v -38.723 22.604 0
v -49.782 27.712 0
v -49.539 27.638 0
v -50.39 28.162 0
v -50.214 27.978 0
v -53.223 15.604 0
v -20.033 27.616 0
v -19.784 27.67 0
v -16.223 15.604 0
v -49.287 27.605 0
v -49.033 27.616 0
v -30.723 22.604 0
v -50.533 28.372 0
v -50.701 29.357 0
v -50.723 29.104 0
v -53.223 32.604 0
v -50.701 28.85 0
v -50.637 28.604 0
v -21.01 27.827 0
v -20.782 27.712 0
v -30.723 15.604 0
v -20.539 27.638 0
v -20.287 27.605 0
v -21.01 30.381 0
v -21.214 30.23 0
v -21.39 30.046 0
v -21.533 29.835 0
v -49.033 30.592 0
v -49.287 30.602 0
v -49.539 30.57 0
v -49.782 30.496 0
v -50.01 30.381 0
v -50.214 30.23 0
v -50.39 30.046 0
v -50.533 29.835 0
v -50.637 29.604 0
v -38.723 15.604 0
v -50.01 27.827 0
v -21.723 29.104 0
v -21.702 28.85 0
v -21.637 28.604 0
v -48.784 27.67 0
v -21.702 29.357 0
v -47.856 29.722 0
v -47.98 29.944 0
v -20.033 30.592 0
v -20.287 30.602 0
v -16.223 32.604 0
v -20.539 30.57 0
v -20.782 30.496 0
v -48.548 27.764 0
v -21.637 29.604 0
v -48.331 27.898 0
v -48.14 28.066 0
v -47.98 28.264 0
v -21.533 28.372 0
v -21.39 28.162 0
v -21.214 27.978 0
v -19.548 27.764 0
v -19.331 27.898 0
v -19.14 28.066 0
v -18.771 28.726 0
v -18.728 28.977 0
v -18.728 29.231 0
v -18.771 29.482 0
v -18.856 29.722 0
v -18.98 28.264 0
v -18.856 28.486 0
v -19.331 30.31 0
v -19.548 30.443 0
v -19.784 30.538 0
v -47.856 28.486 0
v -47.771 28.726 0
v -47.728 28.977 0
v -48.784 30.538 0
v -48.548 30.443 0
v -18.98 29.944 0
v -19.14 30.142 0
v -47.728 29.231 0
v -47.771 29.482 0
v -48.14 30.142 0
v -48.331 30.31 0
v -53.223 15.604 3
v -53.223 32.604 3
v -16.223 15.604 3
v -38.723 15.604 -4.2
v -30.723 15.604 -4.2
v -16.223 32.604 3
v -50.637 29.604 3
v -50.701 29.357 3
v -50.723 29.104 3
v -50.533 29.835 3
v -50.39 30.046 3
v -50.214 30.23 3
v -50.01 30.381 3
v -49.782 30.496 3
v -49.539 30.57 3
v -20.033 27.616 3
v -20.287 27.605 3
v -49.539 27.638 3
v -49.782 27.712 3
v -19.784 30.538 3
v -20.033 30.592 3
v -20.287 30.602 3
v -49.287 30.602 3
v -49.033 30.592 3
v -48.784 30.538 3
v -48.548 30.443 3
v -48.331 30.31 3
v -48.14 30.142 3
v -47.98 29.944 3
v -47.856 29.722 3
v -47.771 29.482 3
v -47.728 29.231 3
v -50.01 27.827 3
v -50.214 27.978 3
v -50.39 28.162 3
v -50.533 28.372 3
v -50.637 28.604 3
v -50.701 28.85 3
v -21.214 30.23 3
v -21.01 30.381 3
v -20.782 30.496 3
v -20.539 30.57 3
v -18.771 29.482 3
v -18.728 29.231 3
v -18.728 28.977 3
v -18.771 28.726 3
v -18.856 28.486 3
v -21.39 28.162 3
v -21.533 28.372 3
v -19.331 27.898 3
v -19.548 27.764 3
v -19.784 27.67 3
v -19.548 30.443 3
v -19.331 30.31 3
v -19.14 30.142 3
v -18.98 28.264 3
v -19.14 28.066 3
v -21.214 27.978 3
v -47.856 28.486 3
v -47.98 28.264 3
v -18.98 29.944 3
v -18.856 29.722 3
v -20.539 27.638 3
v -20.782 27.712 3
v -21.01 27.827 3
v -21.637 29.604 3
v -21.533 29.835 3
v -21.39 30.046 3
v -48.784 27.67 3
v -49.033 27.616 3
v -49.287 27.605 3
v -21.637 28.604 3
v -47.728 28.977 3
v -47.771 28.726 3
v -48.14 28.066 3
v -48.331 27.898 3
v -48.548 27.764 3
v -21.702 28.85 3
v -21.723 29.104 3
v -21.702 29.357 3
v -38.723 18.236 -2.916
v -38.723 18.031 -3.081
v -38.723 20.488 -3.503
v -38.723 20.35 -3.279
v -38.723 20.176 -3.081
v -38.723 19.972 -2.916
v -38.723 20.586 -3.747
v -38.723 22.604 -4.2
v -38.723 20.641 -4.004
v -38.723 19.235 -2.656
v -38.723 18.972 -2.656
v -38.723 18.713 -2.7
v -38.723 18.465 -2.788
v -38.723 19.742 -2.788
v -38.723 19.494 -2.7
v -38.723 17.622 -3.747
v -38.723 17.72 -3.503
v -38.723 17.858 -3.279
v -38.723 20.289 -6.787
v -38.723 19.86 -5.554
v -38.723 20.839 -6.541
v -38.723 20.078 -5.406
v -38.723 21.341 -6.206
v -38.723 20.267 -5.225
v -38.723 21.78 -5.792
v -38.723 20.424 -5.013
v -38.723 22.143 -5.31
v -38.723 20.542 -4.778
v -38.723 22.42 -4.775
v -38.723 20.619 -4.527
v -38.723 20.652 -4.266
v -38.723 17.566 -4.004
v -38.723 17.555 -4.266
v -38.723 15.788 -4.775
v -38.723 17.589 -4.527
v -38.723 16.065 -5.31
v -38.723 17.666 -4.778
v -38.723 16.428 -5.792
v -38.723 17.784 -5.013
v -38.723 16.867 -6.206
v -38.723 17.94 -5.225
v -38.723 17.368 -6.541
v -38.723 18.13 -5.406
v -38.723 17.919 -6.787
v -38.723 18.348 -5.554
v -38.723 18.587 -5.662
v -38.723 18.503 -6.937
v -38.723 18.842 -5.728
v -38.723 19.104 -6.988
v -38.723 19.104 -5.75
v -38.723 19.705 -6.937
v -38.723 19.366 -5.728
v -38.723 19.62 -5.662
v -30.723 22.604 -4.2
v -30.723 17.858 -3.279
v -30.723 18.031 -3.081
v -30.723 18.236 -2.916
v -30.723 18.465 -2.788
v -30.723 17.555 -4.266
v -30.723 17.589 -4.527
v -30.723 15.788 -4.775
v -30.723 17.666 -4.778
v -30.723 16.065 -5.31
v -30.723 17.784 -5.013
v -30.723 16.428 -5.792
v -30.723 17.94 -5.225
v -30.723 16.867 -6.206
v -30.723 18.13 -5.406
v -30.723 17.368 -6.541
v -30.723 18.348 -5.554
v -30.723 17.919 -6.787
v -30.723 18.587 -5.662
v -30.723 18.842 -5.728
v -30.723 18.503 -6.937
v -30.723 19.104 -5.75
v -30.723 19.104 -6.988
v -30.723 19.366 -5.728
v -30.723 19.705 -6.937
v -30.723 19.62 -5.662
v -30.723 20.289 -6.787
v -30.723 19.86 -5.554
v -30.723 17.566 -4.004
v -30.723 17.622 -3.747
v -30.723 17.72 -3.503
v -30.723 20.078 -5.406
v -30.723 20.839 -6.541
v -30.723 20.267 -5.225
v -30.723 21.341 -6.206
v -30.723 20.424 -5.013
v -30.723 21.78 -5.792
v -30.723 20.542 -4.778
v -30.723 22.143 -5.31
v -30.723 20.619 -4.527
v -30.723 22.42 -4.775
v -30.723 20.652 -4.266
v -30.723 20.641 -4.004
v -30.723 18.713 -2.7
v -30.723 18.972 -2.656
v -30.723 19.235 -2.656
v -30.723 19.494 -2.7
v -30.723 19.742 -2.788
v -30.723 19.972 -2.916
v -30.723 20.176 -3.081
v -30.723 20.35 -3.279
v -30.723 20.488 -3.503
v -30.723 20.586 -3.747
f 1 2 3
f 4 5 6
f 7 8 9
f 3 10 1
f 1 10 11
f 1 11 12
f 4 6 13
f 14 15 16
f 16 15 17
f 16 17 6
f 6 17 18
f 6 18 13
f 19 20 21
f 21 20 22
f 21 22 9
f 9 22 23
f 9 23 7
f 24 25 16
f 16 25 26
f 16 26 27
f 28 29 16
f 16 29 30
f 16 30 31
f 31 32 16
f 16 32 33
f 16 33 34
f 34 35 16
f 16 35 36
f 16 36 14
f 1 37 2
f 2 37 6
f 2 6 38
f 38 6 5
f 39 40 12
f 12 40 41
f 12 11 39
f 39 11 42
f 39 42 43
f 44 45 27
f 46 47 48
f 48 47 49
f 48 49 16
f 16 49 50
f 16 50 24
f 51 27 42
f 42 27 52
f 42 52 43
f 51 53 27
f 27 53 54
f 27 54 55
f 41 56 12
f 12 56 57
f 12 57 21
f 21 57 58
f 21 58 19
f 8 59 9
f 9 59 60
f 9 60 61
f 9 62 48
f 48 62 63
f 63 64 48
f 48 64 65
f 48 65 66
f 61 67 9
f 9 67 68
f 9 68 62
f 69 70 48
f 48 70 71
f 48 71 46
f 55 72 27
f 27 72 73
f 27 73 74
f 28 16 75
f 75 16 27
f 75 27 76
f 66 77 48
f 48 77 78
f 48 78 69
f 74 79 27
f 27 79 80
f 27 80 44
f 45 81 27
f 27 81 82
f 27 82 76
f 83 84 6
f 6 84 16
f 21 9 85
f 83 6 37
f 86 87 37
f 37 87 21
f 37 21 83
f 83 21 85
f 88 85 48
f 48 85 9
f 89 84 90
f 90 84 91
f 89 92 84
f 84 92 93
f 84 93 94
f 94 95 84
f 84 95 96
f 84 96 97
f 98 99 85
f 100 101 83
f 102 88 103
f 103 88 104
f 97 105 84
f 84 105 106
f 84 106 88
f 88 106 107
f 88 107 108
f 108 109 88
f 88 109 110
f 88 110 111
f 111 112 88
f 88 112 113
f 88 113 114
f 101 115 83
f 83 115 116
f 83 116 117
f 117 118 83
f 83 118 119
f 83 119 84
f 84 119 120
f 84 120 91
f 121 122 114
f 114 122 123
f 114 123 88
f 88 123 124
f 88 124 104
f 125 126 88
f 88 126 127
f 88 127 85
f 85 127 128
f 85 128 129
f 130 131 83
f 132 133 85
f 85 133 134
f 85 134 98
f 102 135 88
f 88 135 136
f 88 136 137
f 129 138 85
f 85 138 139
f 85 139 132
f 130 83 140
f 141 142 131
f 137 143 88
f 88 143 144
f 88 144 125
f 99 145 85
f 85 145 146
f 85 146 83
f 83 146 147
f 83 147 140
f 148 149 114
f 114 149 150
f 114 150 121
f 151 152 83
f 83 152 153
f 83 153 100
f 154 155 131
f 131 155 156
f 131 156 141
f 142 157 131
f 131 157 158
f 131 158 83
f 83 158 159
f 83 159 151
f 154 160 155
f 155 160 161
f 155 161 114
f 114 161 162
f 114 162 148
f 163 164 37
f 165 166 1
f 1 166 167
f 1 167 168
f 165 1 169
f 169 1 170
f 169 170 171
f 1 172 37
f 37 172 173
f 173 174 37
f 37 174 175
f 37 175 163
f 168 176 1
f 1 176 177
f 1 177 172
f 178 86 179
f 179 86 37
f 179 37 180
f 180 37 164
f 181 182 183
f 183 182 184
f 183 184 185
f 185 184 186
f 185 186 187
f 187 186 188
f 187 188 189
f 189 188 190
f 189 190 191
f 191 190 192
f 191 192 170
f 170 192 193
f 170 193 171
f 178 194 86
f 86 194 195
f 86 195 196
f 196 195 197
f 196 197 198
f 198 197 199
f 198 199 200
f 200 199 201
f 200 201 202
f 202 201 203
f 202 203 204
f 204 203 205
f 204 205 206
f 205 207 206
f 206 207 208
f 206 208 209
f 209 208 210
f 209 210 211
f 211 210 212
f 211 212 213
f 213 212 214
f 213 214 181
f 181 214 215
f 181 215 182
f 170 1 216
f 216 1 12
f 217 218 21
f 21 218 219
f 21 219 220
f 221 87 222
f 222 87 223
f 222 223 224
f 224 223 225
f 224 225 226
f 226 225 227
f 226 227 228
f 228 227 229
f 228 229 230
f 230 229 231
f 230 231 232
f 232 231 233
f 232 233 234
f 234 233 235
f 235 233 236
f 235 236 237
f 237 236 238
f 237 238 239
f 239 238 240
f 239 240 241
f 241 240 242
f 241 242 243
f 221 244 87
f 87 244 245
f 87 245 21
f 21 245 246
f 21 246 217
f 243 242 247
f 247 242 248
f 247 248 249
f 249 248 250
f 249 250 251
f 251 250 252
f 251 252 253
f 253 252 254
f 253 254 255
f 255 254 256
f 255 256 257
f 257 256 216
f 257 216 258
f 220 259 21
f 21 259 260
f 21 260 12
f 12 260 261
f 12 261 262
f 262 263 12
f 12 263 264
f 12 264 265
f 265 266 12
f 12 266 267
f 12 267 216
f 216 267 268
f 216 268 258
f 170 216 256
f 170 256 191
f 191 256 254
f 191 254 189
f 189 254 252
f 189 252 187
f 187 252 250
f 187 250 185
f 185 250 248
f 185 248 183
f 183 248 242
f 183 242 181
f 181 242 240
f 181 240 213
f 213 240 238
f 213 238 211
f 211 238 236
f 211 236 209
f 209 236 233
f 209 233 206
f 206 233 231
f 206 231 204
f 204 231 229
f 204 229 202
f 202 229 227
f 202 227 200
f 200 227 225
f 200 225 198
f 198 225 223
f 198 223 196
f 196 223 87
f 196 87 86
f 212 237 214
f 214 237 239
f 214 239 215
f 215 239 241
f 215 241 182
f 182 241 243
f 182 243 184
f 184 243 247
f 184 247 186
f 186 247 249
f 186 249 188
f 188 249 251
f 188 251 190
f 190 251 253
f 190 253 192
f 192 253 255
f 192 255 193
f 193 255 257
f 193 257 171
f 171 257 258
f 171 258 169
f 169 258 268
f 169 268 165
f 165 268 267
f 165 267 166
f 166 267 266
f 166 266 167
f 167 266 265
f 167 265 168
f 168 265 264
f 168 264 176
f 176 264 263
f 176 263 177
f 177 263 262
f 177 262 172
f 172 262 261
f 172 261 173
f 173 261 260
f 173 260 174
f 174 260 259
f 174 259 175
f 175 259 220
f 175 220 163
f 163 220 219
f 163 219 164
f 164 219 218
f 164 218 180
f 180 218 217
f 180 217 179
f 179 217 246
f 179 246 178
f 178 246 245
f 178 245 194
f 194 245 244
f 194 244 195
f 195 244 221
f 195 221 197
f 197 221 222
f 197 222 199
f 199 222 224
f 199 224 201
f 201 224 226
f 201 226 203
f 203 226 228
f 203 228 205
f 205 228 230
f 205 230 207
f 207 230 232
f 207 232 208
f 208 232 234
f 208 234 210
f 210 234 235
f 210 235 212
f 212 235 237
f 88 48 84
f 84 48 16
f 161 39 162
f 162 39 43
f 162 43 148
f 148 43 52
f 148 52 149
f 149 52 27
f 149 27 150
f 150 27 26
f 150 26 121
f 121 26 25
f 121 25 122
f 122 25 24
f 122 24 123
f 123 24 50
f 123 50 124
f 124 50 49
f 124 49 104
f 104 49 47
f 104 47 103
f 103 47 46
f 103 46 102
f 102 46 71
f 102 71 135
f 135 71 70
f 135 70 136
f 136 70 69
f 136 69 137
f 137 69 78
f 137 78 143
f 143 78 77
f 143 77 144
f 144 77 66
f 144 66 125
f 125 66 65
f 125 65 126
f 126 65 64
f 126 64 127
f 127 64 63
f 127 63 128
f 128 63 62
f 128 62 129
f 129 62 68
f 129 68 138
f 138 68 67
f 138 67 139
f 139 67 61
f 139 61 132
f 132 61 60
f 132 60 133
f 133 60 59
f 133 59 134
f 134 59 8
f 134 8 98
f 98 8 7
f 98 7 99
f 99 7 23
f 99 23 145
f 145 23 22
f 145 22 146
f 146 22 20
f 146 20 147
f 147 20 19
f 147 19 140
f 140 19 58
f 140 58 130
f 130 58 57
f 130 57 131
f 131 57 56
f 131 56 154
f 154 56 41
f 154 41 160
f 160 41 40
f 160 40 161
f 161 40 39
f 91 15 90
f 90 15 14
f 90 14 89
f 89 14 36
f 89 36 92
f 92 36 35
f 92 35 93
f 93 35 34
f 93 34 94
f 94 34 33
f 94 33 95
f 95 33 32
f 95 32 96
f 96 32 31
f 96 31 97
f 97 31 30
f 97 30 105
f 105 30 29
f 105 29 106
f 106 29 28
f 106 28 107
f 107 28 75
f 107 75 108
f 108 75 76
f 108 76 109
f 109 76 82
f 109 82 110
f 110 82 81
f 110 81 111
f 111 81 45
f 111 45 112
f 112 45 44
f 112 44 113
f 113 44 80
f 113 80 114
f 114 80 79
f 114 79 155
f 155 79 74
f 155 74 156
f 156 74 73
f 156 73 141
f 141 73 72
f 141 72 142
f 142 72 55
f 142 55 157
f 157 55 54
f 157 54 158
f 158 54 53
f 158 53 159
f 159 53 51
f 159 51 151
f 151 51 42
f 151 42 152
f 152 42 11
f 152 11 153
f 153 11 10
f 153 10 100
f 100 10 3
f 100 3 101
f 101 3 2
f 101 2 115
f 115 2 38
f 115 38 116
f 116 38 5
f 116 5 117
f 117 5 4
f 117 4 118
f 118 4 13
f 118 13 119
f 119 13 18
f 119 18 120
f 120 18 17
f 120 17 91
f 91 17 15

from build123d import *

# Parameters (mm, degrees)
CROQUIS1_W              = 37
CROQUIS1_H              = 13
SALIENTE_EXTRUIR1_DEPTH = 3
CROQUIS3_W              = 8
CROQUIS3_H              = 7
SALIENTE_EXTRUIR2_DEPTH = 7
CROQUIS6_R              = 1.55
CORTAR_EXTRUIR4_DEPTH   = 8
CROQUIS8_W              = 37
CROQUIS8_H              = 3
SALIENTE_EXTRUIR3_DEPTH = 4
CROQUIS9_R              = 1.5
CORTAR_EXTRUIR5_DEPTH   = 3


with BuildPart() as part:
    # Croquis1 → Saliente-Extruir1 (new body)
    with BuildSketch(Plane.XY):
        with Locations((-34.723076923, 22.103846154)):
            Rectangle(CROQUIS1_W, CROQUIS1_H)
    extrude(amount=SALIENTE_EXTRUIR1_DEPTH)

    # Croquis3 → Saliente-Extruir2 (add)
    with BuildSketch(Plane(origin=(0, 0, 0), x_dir=(-1, 0, 0), z_dir=(0, 0, -1))):
        with Locations((34.723076923, 19.103846154)):
            Rectangle(CROQUIS3_W, CROQUIS3_H)
    extrude(amount=SALIENTE_EXTRUIR2_DEPTH)

    # Croquis6 → Cortar-Extruir4 (cut)
    with BuildSketch(Plane(origin=(-30.723076923, 0, 0), x_dir=(0, 0, -1), z_dir=(1, 0, 0))):
        with Locations((4.200477656, 19.103846154)):
            Circle(CROQUIS6_R)
        with BuildLine():
            Line((4.200477656, 22.603846154), (7, 22.603846154))
            Line((7, 22.603846154), (7, 15.603846154))
            Line((7, 15.603846154), (4.200477656, 15.603846154))
            ThreePointArc((4.200477656, 15.603846154), (6.987743364, 19.103846154), (4.200477656, 22.603846154))
        make_face()
    extrude(amount=-CORTAR_EXTRUIR4_DEPTH, mode=Mode.SUBTRACT)

    # Croquis8 → Saliente-Extruir3 (add)
    with BuildSketch(Plane(origin=(0, 28.603846154, 0), x_dir=(1, 0, 0), z_dir=(0, 1, 0))):
        with Locations((-34.723076923, -1.5)):
            Rectangle(CROQUIS8_W, CROQUIS8_H)
    extrude(amount=SALIENTE_EXTRUIR3_DEPTH)

    # Croquis9 → Cortar-Extruir5 (cut)
    with BuildSketch(Plane(origin=(0, 0, 0), x_dir=(-1, 0, 0), z_dir=(0, 0, -1))):
        with Locations((20.223076923, 29.103846154)):
            Circle(CROQUIS9_R)
        with Locations((49.223076923, 29.103846154)):
            Circle(CROQUIS9_R)
    extrude(amount=-CORTAR_EXTRUIR5_DEPTH, mode=Mode.SUBTRACT)


solid = part.part
